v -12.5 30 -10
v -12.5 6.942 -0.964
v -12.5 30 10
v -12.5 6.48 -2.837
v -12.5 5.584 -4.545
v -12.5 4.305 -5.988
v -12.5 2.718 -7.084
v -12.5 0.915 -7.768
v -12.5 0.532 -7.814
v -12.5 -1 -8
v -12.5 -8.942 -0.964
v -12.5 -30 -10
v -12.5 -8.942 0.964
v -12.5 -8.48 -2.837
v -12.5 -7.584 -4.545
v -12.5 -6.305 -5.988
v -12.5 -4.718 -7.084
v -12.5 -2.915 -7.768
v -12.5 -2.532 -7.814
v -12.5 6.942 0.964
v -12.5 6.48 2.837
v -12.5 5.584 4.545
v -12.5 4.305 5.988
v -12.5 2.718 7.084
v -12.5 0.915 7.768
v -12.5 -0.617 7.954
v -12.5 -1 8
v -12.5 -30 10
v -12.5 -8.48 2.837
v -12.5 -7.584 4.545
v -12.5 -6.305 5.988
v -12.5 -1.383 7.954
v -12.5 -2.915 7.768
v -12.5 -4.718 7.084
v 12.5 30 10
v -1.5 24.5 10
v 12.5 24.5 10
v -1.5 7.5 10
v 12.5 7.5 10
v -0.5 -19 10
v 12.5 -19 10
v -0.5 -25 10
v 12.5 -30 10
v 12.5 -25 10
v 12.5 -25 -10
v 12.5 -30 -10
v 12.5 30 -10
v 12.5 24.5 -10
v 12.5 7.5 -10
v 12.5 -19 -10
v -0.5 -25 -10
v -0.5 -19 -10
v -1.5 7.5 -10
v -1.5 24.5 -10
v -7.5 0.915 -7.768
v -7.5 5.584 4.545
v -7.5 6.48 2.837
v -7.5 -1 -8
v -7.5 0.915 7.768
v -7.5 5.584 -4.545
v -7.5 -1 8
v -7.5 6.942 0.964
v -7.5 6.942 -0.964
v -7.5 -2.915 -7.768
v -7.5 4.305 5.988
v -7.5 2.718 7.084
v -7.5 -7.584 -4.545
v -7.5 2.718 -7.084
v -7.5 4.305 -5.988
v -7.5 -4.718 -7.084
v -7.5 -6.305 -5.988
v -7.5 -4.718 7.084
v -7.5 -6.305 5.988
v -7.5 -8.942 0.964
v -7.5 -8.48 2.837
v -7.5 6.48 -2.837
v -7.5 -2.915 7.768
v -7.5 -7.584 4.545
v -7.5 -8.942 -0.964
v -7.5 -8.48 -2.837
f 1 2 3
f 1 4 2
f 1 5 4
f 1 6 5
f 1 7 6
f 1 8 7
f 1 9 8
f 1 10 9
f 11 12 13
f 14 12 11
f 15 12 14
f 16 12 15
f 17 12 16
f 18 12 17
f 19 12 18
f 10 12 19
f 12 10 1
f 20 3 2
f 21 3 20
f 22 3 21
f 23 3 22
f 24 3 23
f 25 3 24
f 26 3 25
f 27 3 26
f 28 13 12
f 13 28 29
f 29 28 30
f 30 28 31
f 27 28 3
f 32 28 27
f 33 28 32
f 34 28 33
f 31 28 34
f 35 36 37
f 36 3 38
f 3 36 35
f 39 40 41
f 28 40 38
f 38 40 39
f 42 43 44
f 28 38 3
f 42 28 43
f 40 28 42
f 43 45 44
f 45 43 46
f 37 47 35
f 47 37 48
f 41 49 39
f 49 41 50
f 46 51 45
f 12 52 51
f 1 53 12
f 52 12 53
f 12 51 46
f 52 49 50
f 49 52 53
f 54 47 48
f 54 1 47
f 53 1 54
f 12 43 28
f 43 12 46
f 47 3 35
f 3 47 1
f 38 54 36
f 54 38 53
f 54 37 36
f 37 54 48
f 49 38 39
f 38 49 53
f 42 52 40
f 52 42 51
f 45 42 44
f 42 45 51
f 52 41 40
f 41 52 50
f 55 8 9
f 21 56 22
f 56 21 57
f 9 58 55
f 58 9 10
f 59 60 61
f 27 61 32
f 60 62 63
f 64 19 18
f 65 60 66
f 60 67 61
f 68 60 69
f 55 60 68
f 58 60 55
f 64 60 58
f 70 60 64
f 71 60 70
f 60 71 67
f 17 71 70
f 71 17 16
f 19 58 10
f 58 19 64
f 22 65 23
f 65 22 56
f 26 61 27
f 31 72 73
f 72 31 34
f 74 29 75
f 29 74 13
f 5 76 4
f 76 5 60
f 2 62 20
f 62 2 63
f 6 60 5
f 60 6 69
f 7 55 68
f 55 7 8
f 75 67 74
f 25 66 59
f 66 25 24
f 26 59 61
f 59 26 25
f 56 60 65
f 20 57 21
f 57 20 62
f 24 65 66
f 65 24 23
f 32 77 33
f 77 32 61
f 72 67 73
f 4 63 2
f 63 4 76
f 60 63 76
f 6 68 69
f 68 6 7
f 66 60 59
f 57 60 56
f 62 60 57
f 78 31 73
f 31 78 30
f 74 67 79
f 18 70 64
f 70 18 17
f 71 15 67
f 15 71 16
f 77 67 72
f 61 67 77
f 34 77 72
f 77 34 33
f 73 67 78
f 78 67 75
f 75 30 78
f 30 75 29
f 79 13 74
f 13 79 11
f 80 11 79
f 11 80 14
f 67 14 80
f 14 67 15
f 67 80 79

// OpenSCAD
x = 25;
y = 60;
z = 20;

frameCutOffset = 16;
frameCutWidth = 17;
frameCutDepth = 14;

barCutOffset = -22;
barCutWidth = 6;
barCutDepth = 13;


footY = -1;
footDepth = 5;
footRadius = 8;

difference(){
    cube([x, y, z], center = true);
    frameCut();
    barCut();
    footDimple();
}


module frameCut()
{
    translate([x - frameCutDepth, frameCutOffset, 0]){
        cube([x, frameCutWidth, 0.1 + z], center = true);
    }
}

module barCut()
{
    translate([x - barCutDepth, barCutOffset, 0]){
        cube([x, barCutWidth, 0.1 + z], center = true);
    }
}

module footDimple()
{
    translate([footDepth - x, footY, 0]){
        rotate([0, 90, 0]){
            cylinder(h = x, r = footRadius, center = true);
        }
    }
}
